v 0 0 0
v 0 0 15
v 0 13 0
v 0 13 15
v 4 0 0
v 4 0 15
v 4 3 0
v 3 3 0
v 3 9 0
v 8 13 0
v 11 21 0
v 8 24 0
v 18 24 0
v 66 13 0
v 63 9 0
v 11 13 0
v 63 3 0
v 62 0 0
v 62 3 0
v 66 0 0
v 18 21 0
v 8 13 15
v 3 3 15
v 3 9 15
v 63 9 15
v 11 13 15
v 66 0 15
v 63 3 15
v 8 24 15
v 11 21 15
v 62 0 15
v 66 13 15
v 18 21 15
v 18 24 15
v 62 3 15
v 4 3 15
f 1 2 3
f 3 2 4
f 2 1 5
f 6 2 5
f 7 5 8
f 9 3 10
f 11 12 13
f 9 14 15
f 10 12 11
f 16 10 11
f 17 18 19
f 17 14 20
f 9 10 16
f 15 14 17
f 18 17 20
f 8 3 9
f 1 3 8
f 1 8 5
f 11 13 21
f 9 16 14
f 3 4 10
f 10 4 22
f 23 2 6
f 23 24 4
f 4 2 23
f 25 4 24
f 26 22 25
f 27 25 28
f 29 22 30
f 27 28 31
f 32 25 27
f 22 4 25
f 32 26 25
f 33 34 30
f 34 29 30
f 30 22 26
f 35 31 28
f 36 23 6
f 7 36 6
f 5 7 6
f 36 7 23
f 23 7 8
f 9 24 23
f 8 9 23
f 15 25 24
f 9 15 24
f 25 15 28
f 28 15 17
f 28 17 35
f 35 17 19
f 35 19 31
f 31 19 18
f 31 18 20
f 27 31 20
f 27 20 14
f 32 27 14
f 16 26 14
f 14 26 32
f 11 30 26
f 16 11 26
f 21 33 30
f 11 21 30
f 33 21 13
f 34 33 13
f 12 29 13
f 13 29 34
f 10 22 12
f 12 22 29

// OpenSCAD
difference() {
	difference() {
		cube([66,13,15]);
		translate([3, 3, 0]) cube([60, 6, 15]);
	}
	translate([4, 0, 0]) cube([58, 3, 15]);

}
difference() {
	translate([8, 13, 0]) cube([10,11,15]);
	translate([11, 13, 0]) cube([10,8,15]);
}
